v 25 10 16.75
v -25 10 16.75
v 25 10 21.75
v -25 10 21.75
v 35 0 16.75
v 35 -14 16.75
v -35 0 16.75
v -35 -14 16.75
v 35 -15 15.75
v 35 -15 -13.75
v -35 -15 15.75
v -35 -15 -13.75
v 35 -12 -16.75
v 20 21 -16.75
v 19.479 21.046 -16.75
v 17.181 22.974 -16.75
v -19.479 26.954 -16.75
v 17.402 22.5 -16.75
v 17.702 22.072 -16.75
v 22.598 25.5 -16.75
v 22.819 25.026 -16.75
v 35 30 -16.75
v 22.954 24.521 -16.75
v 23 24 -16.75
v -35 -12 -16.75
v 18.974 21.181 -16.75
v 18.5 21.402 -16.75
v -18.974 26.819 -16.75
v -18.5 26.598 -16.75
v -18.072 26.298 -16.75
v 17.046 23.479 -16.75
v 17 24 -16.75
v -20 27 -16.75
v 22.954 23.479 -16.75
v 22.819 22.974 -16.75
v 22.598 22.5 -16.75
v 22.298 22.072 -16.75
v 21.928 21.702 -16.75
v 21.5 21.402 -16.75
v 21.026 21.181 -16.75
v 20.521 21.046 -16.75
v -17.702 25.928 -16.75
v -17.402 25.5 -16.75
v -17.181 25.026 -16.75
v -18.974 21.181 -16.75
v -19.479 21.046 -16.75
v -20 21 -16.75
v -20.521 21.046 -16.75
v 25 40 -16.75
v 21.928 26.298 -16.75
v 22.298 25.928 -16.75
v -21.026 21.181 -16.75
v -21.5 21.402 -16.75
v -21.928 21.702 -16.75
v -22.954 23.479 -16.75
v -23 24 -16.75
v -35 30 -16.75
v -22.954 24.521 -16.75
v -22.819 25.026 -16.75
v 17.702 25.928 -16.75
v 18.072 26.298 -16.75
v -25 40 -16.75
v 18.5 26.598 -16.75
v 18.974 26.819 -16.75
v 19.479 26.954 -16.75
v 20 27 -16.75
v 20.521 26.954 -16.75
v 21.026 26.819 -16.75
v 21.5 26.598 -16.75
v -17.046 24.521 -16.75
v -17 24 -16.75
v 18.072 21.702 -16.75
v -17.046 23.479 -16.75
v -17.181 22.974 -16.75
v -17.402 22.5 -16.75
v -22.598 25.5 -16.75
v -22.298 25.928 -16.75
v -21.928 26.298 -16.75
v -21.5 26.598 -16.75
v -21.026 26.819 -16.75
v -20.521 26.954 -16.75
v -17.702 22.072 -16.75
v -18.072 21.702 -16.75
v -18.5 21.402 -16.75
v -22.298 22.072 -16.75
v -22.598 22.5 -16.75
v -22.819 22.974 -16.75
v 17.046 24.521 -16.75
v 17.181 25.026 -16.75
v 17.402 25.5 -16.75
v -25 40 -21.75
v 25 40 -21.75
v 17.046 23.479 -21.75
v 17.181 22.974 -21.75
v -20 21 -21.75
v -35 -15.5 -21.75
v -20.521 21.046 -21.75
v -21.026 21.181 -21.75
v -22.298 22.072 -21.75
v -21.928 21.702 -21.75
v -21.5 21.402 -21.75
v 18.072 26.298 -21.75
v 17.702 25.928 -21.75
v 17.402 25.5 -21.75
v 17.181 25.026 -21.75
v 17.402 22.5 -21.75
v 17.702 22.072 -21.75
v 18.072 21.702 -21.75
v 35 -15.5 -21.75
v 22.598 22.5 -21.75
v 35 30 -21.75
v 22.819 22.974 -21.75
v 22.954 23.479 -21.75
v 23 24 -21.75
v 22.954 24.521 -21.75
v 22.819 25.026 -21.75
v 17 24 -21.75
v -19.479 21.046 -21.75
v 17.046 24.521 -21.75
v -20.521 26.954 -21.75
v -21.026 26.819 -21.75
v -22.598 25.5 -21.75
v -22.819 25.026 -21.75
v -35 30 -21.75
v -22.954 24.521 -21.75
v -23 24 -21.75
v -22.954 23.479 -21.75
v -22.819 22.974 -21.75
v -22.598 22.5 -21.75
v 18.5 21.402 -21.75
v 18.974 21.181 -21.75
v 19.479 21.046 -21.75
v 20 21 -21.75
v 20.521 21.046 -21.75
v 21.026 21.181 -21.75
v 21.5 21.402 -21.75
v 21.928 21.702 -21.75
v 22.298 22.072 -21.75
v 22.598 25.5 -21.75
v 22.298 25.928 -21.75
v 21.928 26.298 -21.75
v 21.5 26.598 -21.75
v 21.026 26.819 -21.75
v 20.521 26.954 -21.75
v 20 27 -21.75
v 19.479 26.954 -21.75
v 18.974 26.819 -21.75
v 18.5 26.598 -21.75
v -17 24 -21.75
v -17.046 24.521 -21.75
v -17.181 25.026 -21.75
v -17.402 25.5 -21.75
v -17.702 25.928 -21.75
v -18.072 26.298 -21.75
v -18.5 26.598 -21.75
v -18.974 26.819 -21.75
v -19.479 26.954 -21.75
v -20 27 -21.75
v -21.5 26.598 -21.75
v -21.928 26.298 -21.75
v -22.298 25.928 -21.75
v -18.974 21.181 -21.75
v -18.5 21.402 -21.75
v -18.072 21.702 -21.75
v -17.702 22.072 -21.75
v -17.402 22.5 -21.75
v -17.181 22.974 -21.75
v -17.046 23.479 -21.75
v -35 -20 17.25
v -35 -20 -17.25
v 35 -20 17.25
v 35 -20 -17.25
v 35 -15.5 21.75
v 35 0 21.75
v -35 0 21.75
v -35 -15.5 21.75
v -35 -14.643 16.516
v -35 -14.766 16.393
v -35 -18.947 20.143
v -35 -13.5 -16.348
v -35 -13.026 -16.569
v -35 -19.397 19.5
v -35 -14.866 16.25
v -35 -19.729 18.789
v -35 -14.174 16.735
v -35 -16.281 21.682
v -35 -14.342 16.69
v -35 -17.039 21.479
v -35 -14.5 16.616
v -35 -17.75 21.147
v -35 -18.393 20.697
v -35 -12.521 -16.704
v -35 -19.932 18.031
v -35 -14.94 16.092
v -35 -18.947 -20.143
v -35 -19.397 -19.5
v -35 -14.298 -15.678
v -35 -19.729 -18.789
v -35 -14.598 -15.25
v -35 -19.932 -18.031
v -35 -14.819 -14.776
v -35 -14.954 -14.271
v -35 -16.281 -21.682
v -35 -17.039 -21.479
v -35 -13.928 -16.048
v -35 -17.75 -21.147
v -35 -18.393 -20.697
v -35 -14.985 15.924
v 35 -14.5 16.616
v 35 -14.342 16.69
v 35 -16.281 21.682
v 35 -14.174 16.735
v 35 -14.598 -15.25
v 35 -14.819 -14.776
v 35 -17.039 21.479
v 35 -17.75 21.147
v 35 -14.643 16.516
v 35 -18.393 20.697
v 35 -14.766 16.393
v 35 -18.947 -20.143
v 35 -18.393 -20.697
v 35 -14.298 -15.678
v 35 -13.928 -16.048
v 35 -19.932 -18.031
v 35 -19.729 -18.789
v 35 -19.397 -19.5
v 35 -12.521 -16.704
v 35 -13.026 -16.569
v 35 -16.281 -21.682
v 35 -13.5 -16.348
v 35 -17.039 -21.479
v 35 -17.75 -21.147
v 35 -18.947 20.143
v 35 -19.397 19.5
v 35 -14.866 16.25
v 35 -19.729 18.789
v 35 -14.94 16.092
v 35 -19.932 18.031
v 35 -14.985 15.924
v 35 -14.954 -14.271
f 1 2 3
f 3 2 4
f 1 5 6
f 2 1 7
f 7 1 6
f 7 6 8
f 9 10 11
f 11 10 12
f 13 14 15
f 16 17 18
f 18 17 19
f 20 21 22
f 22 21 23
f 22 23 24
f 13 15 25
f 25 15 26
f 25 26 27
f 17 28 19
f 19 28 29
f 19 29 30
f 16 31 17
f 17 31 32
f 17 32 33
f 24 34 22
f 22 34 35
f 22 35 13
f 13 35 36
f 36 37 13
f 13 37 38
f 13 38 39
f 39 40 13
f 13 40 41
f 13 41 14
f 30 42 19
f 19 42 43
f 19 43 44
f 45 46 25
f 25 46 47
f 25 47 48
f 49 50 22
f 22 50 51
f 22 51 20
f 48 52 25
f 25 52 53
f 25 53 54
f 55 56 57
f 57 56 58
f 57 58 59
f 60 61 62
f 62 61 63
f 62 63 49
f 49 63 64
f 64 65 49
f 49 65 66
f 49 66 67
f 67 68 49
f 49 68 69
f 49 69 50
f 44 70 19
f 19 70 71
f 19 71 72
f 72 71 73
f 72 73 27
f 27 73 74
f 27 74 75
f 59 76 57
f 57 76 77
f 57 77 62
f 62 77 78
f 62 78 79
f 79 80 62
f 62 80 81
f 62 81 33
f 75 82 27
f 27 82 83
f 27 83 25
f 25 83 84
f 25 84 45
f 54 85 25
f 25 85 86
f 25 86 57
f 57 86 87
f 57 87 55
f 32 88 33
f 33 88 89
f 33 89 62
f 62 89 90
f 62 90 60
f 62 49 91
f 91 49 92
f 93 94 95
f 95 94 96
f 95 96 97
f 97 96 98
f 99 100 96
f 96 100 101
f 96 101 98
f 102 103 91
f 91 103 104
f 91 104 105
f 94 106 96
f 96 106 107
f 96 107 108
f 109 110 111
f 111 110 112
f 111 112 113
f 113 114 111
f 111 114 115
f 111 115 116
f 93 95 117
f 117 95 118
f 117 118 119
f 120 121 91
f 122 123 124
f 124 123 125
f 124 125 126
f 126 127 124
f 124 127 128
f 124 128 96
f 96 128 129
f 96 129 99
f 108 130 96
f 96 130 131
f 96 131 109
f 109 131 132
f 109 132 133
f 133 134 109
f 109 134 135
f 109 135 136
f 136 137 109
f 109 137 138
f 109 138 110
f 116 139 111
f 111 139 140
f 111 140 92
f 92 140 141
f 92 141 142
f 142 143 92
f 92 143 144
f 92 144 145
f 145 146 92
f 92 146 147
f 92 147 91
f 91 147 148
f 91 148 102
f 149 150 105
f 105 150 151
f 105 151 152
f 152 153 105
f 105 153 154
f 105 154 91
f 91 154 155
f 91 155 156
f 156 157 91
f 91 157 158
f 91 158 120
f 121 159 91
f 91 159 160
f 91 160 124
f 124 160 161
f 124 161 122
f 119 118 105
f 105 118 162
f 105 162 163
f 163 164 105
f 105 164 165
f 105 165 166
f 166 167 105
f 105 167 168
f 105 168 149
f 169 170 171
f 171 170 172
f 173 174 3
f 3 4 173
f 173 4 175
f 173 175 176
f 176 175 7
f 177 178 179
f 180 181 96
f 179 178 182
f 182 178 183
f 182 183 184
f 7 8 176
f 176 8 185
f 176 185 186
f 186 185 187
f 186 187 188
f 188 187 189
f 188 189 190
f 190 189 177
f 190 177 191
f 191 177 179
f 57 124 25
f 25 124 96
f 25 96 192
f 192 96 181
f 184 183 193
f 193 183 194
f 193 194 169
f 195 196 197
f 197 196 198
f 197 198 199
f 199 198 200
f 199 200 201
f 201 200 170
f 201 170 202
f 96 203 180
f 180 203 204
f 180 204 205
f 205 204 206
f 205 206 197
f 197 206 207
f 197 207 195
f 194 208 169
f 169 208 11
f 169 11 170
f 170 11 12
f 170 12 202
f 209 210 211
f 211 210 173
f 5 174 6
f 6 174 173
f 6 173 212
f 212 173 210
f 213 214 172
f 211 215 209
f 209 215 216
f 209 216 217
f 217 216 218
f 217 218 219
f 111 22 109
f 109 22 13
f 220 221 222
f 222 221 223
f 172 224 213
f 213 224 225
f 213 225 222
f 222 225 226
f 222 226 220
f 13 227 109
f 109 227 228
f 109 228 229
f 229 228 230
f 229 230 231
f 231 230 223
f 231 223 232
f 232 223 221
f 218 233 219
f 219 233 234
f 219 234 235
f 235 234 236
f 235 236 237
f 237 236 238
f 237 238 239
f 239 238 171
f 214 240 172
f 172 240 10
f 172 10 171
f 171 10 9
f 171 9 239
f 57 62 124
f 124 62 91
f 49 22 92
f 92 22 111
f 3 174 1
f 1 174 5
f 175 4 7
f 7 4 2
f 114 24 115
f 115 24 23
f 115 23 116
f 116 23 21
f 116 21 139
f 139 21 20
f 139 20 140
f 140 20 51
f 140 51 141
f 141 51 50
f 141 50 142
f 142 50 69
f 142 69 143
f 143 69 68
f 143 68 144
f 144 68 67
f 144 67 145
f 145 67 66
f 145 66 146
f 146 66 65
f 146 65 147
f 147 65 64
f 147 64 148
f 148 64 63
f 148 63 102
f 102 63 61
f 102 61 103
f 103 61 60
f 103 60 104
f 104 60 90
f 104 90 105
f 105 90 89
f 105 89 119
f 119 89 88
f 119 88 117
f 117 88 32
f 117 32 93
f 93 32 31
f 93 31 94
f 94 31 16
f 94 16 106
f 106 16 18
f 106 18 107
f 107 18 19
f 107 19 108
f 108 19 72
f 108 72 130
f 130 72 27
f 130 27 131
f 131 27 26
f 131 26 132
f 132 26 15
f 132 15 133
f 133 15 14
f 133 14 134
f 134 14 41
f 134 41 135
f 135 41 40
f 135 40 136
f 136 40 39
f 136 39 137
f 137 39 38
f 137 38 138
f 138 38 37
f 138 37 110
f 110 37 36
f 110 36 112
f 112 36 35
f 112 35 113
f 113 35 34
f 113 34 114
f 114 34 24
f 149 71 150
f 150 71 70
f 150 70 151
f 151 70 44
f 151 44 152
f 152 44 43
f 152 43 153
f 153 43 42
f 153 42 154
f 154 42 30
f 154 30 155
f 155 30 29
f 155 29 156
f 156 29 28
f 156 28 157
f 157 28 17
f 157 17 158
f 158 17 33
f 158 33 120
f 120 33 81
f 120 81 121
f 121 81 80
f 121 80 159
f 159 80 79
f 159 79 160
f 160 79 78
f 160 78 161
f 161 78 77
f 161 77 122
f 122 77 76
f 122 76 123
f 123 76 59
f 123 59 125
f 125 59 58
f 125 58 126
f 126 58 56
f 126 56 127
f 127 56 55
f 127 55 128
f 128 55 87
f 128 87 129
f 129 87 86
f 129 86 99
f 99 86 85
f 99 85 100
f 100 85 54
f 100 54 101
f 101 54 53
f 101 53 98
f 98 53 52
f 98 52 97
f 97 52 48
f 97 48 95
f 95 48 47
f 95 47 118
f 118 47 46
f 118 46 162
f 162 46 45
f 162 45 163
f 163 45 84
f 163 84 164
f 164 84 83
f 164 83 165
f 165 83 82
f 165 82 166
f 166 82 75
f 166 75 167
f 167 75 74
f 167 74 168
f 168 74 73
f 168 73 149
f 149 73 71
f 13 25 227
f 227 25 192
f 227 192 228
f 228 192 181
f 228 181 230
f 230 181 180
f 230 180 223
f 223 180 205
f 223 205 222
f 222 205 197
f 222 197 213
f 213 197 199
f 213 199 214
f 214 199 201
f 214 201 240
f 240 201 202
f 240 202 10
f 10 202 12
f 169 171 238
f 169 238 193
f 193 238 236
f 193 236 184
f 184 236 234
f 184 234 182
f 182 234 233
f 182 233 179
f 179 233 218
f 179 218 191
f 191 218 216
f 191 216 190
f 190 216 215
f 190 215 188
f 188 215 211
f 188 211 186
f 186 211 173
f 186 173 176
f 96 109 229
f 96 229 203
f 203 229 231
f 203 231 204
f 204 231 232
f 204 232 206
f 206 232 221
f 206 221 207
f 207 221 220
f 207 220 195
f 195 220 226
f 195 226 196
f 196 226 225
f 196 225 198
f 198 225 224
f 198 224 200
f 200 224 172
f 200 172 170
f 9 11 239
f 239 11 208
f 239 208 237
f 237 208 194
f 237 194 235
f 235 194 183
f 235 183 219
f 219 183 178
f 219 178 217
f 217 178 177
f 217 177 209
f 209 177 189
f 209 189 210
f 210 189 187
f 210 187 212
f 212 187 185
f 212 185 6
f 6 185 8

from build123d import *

# Parameters (mm, degrees)
BOSS_EXTRUDE1_DEPTH      = 35
BOSS_EXTRUDE1_DEPTH_BACK = 35
CHAMFER1_SIZE            = 10
SKETCH2_R                = 3
CUT_EXTRUDE1_DEPTH       = 35
FILLET1_R                = 3
FILLET2_R                = 4.5
FILLET3_R                = 1


with BuildPart() as part:
    # Sketch1 → Boss-Extrude1 (new, two sides: drawn at the far end of the back side and taken through both)
    with BuildSketch(Plane(origin=(0, 0, 0), x_dir=(0, 0, -1), z_dir=(1, 0, 0)).offset(-BOSS_EXTRUDE1_DEPTH_BACK)):
        Polygon((-21.75, 10), (-21.75, -20), (21.75, -20), (21.75, 40), (16.75, 40), (16.75, -15), (-16.75, -15), (-16.75, 10), align=None)
    extrude(amount=BOSS_EXTRUDE1_DEPTH + BOSS_EXTRUDE1_DEPTH_BACK)

    # Chamfer1
    chamfer1_edges = [part.edges().sort_by_distance(p)[0] for p in [
        (-35, 40, -19.25),
        (35, 40, -19.25),
        (35, 10, 19.25),
        (-35, 10, 19.25),
    ]]
    chamfer(chamfer1_edges, length=CHAMFER1_SIZE)

    # Sketch2 → Cut-Extrude1 (cut)
    with BuildSketch(Plane.XY.offset(-16.75)):
        with Locations((-20, 24)):
            Circle(SKETCH2_R)
        with Locations((20, 24)):
            Circle(SKETCH2_R)
    extrude(amount=-CUT_EXTRUDE1_DEPTH, mode=Mode.SUBTRACT)

    # Fillet1
    fillet1_edges = [part.edges().sort_by_distance(p)[0] for p in [
        (0, -15, -16.75),
    ]]
    fillet(fillet1_edges, radius=FILLET1_R)

    # Fillet2
    fillet2_edges = [part.edges().sort_by_distance(p)[0] for p in [
        (0, -20, 21.75),
        (0, -20, -21.75),
    ]]
    fillet(fillet2_edges, radius=FILLET2_R)

    # Fillet3
    fillet3_edges = [part.edges().sort_by_distance(p)[0] for p in [
        (0, -15, 16.75),
    ]]
    fillet(fillet3_edges, radius=FILLET3_R)


solid = part.part
